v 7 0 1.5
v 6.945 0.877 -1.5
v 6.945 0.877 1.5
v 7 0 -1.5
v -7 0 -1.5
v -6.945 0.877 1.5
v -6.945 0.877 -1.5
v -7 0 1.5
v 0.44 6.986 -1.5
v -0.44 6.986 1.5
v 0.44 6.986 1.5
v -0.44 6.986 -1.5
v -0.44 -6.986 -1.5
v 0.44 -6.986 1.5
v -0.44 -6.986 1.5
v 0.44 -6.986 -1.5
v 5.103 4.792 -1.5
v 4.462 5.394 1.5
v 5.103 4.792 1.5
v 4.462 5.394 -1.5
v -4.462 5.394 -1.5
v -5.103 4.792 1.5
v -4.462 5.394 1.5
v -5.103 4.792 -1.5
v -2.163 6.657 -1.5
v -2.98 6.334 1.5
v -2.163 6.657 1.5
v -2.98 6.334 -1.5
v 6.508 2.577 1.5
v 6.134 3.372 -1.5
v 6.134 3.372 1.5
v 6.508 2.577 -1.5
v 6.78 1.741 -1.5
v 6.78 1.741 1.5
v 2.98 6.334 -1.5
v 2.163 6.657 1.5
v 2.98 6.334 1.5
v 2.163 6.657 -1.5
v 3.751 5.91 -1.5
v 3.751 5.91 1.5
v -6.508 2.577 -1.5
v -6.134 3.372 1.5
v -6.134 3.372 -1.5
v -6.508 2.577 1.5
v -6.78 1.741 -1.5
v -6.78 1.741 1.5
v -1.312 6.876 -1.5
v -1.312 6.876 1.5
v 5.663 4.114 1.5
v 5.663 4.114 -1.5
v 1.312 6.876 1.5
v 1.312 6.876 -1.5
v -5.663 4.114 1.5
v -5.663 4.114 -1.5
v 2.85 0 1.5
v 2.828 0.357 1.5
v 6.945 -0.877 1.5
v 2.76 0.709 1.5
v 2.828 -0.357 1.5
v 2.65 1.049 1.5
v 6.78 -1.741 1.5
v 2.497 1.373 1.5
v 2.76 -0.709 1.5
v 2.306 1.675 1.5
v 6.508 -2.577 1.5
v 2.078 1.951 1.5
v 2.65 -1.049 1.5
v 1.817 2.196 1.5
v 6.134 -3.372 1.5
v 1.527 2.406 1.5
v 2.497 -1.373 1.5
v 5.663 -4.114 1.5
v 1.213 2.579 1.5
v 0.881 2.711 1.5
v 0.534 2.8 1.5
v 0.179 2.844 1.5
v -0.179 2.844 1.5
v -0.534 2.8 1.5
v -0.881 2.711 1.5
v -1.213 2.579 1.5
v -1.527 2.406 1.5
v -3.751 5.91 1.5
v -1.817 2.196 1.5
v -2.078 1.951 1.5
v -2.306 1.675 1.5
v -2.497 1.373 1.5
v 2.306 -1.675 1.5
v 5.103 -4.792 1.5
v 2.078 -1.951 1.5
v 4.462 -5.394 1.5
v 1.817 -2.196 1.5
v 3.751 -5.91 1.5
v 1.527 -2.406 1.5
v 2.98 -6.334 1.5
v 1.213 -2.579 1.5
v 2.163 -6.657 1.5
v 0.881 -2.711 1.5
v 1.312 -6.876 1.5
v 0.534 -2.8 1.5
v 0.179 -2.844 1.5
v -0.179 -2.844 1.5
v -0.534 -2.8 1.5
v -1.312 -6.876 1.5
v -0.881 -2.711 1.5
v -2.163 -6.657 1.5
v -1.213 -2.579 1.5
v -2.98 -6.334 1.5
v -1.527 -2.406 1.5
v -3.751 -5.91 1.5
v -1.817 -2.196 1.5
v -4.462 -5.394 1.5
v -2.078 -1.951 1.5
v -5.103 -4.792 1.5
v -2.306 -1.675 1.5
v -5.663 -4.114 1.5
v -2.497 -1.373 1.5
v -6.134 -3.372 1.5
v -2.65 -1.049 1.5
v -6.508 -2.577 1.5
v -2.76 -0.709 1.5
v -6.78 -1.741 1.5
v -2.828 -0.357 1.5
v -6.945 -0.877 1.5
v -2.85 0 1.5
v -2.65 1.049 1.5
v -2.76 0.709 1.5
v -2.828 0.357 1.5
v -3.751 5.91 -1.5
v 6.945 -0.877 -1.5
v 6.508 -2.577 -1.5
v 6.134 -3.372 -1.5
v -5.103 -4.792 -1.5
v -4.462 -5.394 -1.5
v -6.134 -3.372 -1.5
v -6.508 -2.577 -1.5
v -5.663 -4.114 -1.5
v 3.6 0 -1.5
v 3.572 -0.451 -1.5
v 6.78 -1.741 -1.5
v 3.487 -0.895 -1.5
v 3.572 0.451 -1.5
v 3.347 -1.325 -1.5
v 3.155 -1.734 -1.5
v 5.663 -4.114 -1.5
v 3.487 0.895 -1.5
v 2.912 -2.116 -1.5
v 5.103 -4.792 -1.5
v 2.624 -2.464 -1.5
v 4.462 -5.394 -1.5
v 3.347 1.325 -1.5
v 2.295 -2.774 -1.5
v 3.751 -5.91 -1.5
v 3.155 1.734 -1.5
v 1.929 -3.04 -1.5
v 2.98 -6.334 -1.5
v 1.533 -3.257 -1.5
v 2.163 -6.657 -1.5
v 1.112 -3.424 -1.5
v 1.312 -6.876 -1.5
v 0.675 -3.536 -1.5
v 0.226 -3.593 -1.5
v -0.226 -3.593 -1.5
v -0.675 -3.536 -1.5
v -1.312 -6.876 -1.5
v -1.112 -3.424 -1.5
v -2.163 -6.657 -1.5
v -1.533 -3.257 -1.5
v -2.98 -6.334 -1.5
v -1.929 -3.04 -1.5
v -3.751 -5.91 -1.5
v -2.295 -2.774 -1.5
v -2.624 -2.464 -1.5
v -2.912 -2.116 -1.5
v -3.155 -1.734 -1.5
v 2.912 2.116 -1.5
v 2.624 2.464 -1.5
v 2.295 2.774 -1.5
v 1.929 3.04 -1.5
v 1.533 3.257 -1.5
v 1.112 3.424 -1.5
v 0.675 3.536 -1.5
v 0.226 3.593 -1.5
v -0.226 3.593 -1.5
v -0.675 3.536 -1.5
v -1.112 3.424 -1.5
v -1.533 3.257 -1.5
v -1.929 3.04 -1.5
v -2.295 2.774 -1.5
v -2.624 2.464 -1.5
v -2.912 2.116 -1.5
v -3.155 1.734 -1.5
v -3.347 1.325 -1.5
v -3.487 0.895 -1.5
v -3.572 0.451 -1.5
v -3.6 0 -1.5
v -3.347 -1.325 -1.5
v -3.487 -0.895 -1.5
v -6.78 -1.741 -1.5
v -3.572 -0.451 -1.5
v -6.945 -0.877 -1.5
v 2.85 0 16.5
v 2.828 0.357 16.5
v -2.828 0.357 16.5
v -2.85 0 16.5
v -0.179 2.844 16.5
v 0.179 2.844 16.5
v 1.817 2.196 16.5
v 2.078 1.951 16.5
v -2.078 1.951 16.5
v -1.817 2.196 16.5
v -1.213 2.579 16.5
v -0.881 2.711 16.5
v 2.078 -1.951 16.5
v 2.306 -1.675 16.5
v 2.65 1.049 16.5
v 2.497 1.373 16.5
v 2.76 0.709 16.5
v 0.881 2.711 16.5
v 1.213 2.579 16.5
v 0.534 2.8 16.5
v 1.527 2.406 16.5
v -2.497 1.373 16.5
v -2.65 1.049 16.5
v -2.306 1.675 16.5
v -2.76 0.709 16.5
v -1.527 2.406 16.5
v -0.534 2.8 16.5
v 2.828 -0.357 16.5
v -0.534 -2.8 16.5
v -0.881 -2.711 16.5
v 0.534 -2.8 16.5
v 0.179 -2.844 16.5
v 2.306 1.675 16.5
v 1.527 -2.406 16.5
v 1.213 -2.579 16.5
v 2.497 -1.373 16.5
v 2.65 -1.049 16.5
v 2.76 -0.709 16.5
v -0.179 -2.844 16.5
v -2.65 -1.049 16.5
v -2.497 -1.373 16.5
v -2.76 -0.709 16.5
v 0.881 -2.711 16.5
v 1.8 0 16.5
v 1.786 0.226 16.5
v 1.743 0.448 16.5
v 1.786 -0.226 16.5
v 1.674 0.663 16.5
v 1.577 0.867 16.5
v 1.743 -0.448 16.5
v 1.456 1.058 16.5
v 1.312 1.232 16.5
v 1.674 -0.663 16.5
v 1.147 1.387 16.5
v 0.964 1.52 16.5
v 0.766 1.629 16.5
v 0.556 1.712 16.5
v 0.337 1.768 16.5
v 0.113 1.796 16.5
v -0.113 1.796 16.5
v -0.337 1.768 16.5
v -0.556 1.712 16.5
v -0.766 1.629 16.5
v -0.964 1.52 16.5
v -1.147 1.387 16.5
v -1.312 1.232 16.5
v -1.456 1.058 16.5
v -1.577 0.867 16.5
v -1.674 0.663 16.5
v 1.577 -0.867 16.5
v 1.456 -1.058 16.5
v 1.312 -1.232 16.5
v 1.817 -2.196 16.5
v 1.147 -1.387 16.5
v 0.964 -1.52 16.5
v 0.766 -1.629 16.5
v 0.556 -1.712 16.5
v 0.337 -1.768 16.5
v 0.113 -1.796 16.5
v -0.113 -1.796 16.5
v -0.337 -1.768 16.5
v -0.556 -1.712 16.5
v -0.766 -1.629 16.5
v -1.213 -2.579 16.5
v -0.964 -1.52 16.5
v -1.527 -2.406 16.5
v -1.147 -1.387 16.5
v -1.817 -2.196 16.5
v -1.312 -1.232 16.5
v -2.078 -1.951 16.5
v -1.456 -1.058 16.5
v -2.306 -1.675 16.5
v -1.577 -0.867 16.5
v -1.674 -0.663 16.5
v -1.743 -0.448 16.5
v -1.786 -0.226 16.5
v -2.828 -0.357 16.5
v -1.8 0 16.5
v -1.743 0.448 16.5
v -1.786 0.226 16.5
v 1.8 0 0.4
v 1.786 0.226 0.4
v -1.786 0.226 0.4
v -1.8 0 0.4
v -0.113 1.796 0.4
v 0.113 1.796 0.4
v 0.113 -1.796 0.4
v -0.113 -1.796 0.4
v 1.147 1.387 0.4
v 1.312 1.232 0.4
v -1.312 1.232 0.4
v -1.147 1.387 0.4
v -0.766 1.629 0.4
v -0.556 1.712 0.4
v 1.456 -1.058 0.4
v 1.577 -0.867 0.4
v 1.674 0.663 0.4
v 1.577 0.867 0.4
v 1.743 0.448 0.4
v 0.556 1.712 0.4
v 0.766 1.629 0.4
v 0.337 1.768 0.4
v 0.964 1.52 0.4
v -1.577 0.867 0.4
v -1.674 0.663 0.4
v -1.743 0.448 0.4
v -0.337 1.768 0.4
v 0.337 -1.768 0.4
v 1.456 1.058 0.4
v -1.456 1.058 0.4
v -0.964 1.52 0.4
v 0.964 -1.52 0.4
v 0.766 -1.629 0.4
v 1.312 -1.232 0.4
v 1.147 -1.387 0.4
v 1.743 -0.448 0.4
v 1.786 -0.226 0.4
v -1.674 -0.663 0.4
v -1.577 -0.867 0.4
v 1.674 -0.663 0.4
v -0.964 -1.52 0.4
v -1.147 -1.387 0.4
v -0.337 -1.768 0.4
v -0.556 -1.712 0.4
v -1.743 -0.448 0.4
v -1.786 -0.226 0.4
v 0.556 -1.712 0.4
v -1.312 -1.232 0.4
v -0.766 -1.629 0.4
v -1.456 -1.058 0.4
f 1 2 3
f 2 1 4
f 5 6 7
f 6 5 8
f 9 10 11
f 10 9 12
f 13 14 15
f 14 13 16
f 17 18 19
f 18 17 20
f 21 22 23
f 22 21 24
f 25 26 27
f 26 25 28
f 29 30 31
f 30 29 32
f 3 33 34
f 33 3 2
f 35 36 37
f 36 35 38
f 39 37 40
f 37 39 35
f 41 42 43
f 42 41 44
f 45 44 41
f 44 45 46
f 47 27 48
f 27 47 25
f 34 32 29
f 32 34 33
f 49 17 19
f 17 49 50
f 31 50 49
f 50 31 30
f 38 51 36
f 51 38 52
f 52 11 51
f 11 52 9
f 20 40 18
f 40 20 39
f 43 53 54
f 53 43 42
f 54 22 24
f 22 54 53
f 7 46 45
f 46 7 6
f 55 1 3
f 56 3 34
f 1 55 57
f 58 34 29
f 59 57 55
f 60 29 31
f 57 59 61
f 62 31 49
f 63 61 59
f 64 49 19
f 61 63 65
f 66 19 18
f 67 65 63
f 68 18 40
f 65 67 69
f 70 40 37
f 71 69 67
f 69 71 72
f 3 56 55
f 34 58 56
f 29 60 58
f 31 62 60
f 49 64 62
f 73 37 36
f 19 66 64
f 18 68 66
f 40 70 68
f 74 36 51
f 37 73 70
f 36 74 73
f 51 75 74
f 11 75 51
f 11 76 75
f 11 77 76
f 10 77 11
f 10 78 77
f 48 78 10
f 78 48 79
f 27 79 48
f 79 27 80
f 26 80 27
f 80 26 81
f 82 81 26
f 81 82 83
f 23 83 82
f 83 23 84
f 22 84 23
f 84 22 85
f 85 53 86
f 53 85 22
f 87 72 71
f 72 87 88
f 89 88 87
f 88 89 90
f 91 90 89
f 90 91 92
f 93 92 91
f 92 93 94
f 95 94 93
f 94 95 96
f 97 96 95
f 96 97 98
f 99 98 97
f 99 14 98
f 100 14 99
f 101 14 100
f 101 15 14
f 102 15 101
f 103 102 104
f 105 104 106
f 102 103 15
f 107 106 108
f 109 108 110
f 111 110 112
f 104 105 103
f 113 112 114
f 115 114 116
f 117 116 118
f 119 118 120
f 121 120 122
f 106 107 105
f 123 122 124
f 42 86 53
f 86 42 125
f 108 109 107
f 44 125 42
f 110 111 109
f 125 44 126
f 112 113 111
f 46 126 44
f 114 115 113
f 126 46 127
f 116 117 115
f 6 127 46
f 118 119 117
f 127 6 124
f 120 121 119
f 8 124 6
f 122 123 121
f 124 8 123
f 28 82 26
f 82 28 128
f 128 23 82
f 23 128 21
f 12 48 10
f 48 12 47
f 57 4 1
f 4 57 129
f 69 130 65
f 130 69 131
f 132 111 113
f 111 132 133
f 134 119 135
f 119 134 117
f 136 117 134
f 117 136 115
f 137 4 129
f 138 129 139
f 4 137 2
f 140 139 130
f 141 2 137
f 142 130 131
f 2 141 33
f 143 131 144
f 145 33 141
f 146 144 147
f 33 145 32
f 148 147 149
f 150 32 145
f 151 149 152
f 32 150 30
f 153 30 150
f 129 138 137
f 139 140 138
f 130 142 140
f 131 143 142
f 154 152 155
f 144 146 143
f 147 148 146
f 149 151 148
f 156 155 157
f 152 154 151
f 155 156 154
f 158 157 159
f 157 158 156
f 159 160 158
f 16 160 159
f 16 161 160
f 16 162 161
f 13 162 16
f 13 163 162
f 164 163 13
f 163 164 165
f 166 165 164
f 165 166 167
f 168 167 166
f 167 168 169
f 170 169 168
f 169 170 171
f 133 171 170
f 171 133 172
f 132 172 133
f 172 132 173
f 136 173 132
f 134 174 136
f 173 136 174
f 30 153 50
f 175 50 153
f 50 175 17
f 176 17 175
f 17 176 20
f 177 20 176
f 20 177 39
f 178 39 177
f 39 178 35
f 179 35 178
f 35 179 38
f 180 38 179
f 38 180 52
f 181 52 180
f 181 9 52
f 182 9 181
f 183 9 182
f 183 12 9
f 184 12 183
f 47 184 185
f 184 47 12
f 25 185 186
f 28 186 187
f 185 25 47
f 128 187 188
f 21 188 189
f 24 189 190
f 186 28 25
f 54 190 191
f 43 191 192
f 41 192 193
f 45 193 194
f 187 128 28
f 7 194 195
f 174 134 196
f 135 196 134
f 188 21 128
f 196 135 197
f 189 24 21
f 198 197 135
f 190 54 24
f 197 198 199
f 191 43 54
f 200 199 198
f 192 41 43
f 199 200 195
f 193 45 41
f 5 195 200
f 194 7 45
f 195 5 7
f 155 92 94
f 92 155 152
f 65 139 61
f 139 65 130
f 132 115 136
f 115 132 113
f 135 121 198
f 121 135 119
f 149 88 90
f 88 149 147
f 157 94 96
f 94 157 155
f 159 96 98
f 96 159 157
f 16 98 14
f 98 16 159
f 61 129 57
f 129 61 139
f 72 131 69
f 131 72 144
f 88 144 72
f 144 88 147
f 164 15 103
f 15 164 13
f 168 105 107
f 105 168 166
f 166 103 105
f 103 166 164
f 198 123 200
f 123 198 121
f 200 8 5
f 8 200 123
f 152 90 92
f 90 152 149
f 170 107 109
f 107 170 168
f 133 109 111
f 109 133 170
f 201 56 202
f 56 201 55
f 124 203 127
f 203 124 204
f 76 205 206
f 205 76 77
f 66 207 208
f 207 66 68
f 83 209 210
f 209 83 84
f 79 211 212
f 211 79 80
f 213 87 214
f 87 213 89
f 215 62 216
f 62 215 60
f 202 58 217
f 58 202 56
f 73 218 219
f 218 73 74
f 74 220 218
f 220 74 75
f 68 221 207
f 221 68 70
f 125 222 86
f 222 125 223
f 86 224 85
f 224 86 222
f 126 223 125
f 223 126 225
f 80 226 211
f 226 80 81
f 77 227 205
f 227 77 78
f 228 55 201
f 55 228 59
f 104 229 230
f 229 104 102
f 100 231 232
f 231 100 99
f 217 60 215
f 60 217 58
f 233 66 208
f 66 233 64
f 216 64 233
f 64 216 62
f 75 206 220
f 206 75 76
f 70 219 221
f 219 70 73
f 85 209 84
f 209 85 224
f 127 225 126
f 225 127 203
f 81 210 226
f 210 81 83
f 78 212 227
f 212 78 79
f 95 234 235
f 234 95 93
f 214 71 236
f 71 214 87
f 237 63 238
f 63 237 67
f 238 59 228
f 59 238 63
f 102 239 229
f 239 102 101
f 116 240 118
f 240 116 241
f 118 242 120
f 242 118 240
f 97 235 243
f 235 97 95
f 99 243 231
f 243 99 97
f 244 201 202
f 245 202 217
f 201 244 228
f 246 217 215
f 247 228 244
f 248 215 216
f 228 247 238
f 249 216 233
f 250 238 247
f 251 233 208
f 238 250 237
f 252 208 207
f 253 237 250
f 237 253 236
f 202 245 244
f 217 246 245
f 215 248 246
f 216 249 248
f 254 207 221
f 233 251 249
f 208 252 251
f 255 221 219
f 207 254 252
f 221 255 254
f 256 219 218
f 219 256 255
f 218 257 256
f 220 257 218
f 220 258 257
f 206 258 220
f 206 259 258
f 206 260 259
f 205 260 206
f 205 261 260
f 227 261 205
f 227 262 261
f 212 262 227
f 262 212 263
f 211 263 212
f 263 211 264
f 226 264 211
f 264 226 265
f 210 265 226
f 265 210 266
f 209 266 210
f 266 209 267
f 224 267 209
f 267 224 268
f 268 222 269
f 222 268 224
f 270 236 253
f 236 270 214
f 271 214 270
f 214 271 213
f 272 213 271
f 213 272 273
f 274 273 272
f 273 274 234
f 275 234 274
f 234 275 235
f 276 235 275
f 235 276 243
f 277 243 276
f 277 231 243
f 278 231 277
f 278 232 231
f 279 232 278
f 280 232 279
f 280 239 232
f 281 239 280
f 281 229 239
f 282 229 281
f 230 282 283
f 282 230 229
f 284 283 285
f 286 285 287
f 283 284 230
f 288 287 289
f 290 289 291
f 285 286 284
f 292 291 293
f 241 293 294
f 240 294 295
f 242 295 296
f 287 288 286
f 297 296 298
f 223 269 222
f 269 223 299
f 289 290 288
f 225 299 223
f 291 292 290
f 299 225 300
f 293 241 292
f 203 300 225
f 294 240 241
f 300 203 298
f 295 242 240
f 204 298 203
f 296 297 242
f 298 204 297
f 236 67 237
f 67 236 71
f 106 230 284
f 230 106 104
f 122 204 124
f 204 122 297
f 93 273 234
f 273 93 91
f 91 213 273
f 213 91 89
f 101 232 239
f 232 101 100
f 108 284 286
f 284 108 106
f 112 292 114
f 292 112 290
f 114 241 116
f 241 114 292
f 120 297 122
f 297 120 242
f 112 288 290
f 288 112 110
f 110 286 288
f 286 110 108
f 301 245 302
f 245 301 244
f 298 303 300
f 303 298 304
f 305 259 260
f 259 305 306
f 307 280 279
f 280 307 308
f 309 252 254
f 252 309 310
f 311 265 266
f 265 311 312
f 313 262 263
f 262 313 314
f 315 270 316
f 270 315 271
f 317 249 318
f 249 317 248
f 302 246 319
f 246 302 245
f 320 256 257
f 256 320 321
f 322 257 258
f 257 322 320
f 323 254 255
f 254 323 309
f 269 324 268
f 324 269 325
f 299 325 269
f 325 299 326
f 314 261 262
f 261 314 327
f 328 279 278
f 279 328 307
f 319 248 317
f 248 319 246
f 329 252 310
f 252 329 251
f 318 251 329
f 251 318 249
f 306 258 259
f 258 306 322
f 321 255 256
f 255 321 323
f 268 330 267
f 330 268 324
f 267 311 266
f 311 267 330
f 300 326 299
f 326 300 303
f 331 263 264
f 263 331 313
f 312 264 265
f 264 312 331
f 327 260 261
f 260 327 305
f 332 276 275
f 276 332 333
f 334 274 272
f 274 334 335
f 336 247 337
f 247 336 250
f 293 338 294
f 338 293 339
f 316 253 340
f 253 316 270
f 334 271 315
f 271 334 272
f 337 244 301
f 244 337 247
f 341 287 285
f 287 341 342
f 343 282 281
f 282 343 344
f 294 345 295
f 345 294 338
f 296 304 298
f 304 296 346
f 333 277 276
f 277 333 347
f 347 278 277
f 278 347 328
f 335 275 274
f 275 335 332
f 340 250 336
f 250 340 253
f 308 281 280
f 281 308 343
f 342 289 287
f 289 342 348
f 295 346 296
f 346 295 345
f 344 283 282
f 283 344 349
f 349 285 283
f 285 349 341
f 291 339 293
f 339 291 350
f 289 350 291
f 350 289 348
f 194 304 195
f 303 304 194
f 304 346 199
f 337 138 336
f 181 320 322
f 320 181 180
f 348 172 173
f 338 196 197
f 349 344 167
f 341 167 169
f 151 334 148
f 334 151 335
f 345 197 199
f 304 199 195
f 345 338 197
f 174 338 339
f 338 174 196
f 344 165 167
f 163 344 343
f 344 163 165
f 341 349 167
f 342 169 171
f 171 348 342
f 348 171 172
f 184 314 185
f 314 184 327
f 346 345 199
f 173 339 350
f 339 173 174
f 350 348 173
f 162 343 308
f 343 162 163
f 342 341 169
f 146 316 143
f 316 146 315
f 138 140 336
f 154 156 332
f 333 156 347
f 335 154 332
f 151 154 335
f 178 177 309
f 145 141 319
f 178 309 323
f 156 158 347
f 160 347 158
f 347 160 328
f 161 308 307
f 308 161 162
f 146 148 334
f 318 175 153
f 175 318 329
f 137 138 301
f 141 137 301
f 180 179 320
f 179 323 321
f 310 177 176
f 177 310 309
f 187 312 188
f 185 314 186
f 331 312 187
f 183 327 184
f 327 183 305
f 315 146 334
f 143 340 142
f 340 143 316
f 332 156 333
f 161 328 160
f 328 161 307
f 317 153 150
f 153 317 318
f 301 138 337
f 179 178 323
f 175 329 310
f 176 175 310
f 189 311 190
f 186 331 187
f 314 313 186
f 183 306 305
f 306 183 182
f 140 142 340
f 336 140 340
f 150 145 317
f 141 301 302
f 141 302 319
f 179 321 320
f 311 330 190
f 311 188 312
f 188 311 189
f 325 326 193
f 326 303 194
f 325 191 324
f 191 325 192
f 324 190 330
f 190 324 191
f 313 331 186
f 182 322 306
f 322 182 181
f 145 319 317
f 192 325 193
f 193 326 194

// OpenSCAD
$fn = 50;


difference() {
	union() {
		translate(v = [0, 0, -1.5000000000]) {
			rotate(a = [0, 0, 0]) {
				cylinder(h = 3, r = 7.0000000000);
			}
		}
		translate(v = [0, 0, -1.5000000000]) {
			rotate(a = [0, 0, 0]) {
				cylinder(h = 18, r = 2.8500000000);
			}
		}
	}
	union() {
		translate(v = [0, 0, -125.0000000000]) {
			rotate(a = [0, 0, 0]) {
				cylinder(h = 250, r = 1.8000000000);
			}
		}
		#translate(v = [0, 0, 0.4000000000]) {
			rotate(a = [0, 180, 0]) {
				cylinder(h = 1.9000000000, r1 = 1.8000000000, r2 = 3.6000000000);
			}
		}
		#translate(v = [0, 0, 16.5000000000]) {
			rotate(a = [0, 180, 0]) {
				cylinder(h = 18, r = 1.8000000000);
			}
		}
	}
}
